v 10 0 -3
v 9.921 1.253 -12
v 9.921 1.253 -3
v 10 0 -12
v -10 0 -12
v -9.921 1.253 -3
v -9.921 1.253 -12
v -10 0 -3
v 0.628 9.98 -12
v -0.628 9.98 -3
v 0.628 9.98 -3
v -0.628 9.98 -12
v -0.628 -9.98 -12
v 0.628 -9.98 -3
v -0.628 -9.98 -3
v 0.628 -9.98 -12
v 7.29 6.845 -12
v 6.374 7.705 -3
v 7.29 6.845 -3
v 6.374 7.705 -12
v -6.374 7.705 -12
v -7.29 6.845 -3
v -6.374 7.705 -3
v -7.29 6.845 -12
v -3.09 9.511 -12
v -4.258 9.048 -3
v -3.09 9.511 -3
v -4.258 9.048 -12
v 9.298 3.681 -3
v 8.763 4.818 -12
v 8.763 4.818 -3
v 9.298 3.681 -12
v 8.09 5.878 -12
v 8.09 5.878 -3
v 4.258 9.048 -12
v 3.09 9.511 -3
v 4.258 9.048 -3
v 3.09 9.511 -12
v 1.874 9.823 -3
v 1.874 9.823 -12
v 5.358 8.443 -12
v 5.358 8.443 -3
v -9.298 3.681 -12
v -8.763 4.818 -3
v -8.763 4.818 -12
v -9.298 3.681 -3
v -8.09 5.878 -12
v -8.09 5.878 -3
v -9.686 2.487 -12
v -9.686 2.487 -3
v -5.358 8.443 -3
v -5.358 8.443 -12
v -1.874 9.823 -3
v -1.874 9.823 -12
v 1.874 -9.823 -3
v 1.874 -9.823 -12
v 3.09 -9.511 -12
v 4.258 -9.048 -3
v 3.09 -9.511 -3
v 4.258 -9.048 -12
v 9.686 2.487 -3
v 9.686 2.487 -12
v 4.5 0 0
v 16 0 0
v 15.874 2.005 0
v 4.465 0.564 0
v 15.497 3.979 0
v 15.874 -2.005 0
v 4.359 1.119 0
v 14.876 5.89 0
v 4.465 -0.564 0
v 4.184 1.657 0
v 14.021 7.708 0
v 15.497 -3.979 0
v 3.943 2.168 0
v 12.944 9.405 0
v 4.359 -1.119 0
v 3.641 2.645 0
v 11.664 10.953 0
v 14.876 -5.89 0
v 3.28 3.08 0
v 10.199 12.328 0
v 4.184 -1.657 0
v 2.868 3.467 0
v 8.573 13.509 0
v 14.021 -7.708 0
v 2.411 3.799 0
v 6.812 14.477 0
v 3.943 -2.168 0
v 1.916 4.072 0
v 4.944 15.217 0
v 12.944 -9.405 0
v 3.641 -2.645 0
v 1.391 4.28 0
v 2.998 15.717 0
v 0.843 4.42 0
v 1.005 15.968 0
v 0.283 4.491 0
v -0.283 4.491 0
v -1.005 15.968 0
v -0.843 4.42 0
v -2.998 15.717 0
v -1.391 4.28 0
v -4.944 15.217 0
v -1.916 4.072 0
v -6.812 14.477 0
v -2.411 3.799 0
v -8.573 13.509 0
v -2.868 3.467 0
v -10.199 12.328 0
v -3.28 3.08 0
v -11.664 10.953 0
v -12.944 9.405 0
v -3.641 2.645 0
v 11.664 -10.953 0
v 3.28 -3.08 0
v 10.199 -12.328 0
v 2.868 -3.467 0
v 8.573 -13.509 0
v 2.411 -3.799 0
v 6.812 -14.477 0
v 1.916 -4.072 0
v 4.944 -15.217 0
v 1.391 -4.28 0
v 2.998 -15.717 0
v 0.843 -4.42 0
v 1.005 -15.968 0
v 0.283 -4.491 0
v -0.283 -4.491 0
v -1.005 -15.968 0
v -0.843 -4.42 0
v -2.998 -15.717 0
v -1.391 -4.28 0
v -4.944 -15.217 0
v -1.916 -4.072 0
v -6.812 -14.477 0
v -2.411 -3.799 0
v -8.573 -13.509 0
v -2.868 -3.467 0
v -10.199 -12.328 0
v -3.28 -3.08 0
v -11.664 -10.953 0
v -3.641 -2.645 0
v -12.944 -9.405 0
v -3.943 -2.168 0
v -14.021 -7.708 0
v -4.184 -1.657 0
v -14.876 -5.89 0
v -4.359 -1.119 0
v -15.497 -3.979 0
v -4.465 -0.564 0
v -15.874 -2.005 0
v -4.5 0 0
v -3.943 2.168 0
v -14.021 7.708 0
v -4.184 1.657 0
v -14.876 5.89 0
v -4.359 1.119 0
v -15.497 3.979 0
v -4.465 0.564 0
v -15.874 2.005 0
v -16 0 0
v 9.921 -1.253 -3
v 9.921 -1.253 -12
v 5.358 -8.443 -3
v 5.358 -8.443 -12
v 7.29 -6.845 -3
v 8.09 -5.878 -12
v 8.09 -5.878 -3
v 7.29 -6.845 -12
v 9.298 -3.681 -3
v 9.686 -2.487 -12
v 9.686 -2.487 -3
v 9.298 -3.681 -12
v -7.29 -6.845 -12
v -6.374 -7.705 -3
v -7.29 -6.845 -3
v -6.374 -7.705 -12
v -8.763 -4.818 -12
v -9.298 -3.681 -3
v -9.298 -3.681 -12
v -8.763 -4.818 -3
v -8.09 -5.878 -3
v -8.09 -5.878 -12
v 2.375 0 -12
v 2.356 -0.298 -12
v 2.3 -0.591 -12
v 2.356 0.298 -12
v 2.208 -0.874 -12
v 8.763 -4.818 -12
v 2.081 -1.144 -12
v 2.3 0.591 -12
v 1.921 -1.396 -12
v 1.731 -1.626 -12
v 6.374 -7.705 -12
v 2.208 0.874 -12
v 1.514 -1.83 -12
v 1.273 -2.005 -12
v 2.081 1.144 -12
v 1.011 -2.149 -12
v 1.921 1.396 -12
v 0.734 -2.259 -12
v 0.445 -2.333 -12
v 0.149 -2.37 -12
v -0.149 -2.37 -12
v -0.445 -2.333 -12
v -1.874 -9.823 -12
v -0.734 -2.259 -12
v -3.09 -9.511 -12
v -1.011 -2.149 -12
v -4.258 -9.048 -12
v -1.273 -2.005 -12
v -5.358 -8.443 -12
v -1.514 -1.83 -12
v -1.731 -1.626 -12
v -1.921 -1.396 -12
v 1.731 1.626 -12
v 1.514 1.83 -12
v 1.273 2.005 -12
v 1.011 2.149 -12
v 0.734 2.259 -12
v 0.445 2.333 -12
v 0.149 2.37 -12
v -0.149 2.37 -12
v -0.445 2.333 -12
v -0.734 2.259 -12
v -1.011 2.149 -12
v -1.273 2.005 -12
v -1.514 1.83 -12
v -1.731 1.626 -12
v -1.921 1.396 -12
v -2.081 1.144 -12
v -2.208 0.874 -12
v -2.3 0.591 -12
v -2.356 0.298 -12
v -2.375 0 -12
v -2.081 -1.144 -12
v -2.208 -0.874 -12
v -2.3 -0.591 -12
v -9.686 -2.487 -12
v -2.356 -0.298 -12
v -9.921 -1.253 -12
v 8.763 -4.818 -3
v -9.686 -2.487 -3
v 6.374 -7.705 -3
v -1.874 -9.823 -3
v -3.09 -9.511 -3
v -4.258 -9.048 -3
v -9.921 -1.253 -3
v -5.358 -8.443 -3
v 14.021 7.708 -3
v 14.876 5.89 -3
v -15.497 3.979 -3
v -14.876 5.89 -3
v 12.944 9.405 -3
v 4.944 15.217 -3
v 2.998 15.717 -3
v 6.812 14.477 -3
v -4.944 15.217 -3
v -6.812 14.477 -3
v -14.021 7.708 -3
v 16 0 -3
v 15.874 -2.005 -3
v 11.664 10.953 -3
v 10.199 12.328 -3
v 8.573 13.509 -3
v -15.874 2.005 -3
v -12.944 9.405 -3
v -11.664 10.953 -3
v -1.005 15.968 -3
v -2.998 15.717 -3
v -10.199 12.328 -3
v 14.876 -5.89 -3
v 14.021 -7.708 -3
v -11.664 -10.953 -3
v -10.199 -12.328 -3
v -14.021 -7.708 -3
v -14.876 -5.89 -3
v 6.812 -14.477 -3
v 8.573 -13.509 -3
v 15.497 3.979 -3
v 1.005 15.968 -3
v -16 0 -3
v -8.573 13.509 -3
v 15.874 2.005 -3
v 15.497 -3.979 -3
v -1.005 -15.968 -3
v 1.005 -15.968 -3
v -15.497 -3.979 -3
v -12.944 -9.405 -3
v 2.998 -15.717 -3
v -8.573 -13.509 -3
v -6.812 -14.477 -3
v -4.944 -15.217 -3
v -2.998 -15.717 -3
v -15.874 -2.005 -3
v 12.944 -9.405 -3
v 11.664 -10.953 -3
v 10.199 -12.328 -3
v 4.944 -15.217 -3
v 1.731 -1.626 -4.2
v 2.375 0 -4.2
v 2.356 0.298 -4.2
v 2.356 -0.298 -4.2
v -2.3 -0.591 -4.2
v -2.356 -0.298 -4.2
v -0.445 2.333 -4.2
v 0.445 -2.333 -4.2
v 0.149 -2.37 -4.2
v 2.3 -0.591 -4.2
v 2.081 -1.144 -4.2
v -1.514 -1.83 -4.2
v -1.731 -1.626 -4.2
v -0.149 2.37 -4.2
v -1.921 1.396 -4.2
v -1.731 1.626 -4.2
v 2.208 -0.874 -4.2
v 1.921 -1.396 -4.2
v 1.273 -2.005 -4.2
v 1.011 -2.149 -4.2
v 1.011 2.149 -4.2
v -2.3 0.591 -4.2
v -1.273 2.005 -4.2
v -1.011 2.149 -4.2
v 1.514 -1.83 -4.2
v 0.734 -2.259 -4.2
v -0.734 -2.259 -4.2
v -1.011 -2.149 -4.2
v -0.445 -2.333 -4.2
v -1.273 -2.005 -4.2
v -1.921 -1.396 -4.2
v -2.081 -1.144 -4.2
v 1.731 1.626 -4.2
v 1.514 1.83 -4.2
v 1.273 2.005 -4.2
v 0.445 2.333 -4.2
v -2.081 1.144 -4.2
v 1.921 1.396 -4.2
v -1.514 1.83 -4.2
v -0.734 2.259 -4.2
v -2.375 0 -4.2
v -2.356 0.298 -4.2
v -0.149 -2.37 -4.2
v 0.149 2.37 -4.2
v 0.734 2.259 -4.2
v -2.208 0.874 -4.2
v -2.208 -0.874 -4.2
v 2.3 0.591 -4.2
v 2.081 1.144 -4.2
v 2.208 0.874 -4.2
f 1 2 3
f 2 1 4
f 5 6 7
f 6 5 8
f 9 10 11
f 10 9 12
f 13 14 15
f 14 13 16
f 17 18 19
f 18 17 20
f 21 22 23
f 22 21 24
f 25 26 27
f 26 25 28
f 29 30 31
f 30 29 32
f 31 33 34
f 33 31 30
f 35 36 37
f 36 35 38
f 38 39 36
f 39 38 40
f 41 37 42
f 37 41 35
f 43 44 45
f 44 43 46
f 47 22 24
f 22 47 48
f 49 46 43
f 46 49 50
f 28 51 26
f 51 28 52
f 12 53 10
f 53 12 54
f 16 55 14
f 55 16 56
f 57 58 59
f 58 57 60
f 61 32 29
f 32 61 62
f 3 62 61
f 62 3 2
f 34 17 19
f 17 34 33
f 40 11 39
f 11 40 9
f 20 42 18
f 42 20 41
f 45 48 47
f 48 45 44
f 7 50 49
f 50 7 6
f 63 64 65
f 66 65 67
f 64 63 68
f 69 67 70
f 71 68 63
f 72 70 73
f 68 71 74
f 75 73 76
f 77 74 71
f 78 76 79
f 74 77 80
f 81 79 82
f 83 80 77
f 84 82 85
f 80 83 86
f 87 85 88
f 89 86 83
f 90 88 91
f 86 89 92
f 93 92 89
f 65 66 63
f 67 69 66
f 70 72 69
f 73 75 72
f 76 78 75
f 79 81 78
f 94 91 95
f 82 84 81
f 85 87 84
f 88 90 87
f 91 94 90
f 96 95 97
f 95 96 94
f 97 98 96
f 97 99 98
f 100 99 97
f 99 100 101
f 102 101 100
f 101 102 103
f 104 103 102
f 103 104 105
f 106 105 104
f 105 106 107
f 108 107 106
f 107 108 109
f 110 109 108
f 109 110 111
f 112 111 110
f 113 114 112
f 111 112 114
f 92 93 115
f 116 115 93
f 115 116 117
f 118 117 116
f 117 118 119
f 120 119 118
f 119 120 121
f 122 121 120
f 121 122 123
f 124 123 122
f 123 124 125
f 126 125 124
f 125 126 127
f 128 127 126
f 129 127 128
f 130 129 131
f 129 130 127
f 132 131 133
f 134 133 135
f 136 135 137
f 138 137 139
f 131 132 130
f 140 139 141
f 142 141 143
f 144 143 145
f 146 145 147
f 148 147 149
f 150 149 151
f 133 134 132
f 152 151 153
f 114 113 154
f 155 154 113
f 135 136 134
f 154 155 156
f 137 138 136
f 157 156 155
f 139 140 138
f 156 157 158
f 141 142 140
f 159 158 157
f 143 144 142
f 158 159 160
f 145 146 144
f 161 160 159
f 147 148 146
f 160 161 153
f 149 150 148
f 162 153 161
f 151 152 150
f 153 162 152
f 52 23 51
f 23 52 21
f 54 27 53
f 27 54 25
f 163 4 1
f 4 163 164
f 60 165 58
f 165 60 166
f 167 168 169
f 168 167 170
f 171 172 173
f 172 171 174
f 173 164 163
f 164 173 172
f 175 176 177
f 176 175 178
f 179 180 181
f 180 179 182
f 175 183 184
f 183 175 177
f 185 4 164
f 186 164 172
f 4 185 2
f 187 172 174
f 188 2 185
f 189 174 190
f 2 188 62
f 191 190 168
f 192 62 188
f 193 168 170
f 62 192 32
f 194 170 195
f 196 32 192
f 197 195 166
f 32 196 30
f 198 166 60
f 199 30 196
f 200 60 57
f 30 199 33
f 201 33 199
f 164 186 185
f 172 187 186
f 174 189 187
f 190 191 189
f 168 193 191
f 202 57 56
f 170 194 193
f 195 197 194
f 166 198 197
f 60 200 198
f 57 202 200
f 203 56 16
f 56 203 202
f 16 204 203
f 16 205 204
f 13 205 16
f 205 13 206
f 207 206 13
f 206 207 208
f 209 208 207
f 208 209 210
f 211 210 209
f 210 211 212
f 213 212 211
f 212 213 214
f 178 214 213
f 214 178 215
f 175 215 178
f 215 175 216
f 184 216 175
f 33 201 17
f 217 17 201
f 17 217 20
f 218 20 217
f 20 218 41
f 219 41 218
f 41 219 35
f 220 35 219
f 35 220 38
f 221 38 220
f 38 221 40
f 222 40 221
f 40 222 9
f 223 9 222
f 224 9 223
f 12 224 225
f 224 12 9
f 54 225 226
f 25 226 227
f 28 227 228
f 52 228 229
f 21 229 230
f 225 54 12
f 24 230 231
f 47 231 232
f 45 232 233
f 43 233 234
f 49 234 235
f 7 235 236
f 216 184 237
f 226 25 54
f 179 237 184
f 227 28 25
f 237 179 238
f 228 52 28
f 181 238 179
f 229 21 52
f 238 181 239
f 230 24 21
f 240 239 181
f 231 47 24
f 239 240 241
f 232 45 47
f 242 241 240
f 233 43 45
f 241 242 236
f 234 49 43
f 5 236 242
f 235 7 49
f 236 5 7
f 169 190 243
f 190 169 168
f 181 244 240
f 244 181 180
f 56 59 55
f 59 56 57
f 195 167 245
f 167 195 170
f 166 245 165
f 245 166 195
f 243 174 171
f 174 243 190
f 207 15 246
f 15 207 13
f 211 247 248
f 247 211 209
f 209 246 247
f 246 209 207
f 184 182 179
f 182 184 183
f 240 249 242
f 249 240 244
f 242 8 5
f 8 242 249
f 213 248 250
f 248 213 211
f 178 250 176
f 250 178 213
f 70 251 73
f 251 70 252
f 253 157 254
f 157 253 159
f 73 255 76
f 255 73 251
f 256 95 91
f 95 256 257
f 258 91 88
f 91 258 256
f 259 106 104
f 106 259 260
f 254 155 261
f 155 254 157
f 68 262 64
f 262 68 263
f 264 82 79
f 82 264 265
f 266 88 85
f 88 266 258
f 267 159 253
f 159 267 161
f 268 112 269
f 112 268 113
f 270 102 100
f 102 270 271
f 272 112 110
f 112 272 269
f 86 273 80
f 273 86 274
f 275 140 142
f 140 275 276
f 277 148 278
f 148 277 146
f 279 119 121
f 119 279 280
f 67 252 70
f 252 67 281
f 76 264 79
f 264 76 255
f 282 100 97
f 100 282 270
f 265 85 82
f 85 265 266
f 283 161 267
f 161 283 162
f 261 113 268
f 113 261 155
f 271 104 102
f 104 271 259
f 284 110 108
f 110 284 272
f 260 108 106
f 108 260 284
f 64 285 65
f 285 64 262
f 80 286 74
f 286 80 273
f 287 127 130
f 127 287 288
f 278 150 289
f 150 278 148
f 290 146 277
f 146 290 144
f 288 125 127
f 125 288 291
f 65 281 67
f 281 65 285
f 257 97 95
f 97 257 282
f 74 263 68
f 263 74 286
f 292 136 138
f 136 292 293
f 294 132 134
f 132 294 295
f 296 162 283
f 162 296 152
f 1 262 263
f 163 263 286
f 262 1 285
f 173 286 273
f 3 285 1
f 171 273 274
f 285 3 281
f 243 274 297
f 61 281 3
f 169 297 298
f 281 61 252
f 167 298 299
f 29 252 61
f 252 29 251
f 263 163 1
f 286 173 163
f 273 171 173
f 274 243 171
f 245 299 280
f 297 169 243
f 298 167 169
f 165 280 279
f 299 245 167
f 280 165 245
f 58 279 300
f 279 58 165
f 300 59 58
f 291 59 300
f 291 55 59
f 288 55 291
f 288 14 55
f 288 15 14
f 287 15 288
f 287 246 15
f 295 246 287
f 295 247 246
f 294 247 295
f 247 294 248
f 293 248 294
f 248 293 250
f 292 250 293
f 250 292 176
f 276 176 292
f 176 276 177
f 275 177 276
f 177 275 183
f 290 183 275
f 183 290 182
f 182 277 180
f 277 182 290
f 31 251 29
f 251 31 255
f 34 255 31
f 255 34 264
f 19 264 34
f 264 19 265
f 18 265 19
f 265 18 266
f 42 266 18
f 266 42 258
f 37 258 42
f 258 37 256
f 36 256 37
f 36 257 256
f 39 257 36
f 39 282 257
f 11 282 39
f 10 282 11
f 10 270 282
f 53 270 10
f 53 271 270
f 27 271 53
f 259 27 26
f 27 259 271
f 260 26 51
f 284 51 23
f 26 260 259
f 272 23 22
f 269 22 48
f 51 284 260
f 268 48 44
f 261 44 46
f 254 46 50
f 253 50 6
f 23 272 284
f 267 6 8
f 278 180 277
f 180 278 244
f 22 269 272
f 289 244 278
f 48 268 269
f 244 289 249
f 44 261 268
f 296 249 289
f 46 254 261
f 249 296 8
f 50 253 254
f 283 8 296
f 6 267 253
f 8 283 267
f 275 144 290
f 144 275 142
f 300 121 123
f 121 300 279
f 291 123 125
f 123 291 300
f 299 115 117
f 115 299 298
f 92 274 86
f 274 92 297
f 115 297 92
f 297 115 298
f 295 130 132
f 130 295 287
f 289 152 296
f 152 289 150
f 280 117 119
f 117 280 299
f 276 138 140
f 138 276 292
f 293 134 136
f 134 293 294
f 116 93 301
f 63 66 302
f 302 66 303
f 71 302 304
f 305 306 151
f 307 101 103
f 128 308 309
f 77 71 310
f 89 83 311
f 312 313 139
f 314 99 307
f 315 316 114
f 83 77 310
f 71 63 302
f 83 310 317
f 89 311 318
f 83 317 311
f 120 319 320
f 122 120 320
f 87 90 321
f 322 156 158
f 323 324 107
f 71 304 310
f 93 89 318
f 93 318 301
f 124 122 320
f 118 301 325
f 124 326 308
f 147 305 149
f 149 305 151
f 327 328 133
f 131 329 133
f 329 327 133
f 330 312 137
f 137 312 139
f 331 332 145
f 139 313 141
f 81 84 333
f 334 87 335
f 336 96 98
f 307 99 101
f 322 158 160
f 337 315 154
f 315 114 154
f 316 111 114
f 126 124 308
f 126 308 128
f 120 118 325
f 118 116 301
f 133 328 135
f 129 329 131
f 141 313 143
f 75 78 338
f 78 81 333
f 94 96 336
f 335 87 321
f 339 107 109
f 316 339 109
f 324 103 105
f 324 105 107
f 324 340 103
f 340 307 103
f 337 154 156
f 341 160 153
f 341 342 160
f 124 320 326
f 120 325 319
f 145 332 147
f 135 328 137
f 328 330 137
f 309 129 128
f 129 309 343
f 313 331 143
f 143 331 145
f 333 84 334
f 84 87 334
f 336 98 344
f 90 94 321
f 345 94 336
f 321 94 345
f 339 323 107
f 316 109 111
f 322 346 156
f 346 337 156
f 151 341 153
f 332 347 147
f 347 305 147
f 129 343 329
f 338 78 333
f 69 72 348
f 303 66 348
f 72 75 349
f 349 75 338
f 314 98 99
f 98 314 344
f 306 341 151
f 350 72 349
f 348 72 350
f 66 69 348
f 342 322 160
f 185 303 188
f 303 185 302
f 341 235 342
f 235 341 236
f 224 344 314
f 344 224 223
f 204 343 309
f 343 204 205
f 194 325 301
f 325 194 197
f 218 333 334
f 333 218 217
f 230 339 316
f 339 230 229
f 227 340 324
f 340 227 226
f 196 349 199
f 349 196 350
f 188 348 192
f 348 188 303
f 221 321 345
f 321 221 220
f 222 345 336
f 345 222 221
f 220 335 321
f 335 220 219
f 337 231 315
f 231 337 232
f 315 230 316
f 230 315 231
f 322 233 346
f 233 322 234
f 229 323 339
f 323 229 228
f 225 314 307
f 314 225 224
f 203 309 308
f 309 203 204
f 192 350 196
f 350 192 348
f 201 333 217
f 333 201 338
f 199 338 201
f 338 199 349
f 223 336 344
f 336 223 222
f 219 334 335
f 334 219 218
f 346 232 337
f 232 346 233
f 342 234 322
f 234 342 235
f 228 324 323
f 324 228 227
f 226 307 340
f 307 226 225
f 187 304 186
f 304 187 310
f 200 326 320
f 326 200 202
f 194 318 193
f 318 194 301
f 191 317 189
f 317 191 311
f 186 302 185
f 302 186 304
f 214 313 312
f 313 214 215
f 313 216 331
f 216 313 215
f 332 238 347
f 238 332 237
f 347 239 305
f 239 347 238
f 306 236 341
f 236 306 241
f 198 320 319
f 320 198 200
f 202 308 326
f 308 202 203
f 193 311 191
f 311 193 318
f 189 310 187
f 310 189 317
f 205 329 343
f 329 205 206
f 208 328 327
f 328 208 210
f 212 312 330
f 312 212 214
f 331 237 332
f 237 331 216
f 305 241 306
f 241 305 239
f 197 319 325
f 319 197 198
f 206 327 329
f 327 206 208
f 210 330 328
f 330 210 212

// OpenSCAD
$fn = 50;


difference() {
	union() {
		translate(v = [0, 0, -12.0000000000]) {
			cylinder(h = 12, r = 10.0000000000);
		}
		translate(v = [0, 0, -3.0000000000]) {
			cylinder(h = 3, r = 16.0000000000);
		}
	}
	union() {
		translate(v = [0, 0, 0]) {
			rotate(a = [0, 0, 0]) {
				difference() {
					union() {
						#translate(v = [0, 0, -12.0000000000]) {
							cylinder(h = 12, r = 2.2500000000);
						}
						#translate(v = [0, 0, -4.2000000000]) {
							cylinder(h = 4.2000000000, r = 10.0000000000, r1 = 2.3750000000, r2 = 4.5000000000);
						}
						#translate(v = [0, 0, -12.0000000000]) {
							cylinder(h = 12, r = 2.3750000000);
						}
						#translate(v = [0, 0, -12.0000000000]) {
							cylinder(h = 12, r = 2.2500000000);
						}
					}
					union();
				}
			}
		}
	}
}
